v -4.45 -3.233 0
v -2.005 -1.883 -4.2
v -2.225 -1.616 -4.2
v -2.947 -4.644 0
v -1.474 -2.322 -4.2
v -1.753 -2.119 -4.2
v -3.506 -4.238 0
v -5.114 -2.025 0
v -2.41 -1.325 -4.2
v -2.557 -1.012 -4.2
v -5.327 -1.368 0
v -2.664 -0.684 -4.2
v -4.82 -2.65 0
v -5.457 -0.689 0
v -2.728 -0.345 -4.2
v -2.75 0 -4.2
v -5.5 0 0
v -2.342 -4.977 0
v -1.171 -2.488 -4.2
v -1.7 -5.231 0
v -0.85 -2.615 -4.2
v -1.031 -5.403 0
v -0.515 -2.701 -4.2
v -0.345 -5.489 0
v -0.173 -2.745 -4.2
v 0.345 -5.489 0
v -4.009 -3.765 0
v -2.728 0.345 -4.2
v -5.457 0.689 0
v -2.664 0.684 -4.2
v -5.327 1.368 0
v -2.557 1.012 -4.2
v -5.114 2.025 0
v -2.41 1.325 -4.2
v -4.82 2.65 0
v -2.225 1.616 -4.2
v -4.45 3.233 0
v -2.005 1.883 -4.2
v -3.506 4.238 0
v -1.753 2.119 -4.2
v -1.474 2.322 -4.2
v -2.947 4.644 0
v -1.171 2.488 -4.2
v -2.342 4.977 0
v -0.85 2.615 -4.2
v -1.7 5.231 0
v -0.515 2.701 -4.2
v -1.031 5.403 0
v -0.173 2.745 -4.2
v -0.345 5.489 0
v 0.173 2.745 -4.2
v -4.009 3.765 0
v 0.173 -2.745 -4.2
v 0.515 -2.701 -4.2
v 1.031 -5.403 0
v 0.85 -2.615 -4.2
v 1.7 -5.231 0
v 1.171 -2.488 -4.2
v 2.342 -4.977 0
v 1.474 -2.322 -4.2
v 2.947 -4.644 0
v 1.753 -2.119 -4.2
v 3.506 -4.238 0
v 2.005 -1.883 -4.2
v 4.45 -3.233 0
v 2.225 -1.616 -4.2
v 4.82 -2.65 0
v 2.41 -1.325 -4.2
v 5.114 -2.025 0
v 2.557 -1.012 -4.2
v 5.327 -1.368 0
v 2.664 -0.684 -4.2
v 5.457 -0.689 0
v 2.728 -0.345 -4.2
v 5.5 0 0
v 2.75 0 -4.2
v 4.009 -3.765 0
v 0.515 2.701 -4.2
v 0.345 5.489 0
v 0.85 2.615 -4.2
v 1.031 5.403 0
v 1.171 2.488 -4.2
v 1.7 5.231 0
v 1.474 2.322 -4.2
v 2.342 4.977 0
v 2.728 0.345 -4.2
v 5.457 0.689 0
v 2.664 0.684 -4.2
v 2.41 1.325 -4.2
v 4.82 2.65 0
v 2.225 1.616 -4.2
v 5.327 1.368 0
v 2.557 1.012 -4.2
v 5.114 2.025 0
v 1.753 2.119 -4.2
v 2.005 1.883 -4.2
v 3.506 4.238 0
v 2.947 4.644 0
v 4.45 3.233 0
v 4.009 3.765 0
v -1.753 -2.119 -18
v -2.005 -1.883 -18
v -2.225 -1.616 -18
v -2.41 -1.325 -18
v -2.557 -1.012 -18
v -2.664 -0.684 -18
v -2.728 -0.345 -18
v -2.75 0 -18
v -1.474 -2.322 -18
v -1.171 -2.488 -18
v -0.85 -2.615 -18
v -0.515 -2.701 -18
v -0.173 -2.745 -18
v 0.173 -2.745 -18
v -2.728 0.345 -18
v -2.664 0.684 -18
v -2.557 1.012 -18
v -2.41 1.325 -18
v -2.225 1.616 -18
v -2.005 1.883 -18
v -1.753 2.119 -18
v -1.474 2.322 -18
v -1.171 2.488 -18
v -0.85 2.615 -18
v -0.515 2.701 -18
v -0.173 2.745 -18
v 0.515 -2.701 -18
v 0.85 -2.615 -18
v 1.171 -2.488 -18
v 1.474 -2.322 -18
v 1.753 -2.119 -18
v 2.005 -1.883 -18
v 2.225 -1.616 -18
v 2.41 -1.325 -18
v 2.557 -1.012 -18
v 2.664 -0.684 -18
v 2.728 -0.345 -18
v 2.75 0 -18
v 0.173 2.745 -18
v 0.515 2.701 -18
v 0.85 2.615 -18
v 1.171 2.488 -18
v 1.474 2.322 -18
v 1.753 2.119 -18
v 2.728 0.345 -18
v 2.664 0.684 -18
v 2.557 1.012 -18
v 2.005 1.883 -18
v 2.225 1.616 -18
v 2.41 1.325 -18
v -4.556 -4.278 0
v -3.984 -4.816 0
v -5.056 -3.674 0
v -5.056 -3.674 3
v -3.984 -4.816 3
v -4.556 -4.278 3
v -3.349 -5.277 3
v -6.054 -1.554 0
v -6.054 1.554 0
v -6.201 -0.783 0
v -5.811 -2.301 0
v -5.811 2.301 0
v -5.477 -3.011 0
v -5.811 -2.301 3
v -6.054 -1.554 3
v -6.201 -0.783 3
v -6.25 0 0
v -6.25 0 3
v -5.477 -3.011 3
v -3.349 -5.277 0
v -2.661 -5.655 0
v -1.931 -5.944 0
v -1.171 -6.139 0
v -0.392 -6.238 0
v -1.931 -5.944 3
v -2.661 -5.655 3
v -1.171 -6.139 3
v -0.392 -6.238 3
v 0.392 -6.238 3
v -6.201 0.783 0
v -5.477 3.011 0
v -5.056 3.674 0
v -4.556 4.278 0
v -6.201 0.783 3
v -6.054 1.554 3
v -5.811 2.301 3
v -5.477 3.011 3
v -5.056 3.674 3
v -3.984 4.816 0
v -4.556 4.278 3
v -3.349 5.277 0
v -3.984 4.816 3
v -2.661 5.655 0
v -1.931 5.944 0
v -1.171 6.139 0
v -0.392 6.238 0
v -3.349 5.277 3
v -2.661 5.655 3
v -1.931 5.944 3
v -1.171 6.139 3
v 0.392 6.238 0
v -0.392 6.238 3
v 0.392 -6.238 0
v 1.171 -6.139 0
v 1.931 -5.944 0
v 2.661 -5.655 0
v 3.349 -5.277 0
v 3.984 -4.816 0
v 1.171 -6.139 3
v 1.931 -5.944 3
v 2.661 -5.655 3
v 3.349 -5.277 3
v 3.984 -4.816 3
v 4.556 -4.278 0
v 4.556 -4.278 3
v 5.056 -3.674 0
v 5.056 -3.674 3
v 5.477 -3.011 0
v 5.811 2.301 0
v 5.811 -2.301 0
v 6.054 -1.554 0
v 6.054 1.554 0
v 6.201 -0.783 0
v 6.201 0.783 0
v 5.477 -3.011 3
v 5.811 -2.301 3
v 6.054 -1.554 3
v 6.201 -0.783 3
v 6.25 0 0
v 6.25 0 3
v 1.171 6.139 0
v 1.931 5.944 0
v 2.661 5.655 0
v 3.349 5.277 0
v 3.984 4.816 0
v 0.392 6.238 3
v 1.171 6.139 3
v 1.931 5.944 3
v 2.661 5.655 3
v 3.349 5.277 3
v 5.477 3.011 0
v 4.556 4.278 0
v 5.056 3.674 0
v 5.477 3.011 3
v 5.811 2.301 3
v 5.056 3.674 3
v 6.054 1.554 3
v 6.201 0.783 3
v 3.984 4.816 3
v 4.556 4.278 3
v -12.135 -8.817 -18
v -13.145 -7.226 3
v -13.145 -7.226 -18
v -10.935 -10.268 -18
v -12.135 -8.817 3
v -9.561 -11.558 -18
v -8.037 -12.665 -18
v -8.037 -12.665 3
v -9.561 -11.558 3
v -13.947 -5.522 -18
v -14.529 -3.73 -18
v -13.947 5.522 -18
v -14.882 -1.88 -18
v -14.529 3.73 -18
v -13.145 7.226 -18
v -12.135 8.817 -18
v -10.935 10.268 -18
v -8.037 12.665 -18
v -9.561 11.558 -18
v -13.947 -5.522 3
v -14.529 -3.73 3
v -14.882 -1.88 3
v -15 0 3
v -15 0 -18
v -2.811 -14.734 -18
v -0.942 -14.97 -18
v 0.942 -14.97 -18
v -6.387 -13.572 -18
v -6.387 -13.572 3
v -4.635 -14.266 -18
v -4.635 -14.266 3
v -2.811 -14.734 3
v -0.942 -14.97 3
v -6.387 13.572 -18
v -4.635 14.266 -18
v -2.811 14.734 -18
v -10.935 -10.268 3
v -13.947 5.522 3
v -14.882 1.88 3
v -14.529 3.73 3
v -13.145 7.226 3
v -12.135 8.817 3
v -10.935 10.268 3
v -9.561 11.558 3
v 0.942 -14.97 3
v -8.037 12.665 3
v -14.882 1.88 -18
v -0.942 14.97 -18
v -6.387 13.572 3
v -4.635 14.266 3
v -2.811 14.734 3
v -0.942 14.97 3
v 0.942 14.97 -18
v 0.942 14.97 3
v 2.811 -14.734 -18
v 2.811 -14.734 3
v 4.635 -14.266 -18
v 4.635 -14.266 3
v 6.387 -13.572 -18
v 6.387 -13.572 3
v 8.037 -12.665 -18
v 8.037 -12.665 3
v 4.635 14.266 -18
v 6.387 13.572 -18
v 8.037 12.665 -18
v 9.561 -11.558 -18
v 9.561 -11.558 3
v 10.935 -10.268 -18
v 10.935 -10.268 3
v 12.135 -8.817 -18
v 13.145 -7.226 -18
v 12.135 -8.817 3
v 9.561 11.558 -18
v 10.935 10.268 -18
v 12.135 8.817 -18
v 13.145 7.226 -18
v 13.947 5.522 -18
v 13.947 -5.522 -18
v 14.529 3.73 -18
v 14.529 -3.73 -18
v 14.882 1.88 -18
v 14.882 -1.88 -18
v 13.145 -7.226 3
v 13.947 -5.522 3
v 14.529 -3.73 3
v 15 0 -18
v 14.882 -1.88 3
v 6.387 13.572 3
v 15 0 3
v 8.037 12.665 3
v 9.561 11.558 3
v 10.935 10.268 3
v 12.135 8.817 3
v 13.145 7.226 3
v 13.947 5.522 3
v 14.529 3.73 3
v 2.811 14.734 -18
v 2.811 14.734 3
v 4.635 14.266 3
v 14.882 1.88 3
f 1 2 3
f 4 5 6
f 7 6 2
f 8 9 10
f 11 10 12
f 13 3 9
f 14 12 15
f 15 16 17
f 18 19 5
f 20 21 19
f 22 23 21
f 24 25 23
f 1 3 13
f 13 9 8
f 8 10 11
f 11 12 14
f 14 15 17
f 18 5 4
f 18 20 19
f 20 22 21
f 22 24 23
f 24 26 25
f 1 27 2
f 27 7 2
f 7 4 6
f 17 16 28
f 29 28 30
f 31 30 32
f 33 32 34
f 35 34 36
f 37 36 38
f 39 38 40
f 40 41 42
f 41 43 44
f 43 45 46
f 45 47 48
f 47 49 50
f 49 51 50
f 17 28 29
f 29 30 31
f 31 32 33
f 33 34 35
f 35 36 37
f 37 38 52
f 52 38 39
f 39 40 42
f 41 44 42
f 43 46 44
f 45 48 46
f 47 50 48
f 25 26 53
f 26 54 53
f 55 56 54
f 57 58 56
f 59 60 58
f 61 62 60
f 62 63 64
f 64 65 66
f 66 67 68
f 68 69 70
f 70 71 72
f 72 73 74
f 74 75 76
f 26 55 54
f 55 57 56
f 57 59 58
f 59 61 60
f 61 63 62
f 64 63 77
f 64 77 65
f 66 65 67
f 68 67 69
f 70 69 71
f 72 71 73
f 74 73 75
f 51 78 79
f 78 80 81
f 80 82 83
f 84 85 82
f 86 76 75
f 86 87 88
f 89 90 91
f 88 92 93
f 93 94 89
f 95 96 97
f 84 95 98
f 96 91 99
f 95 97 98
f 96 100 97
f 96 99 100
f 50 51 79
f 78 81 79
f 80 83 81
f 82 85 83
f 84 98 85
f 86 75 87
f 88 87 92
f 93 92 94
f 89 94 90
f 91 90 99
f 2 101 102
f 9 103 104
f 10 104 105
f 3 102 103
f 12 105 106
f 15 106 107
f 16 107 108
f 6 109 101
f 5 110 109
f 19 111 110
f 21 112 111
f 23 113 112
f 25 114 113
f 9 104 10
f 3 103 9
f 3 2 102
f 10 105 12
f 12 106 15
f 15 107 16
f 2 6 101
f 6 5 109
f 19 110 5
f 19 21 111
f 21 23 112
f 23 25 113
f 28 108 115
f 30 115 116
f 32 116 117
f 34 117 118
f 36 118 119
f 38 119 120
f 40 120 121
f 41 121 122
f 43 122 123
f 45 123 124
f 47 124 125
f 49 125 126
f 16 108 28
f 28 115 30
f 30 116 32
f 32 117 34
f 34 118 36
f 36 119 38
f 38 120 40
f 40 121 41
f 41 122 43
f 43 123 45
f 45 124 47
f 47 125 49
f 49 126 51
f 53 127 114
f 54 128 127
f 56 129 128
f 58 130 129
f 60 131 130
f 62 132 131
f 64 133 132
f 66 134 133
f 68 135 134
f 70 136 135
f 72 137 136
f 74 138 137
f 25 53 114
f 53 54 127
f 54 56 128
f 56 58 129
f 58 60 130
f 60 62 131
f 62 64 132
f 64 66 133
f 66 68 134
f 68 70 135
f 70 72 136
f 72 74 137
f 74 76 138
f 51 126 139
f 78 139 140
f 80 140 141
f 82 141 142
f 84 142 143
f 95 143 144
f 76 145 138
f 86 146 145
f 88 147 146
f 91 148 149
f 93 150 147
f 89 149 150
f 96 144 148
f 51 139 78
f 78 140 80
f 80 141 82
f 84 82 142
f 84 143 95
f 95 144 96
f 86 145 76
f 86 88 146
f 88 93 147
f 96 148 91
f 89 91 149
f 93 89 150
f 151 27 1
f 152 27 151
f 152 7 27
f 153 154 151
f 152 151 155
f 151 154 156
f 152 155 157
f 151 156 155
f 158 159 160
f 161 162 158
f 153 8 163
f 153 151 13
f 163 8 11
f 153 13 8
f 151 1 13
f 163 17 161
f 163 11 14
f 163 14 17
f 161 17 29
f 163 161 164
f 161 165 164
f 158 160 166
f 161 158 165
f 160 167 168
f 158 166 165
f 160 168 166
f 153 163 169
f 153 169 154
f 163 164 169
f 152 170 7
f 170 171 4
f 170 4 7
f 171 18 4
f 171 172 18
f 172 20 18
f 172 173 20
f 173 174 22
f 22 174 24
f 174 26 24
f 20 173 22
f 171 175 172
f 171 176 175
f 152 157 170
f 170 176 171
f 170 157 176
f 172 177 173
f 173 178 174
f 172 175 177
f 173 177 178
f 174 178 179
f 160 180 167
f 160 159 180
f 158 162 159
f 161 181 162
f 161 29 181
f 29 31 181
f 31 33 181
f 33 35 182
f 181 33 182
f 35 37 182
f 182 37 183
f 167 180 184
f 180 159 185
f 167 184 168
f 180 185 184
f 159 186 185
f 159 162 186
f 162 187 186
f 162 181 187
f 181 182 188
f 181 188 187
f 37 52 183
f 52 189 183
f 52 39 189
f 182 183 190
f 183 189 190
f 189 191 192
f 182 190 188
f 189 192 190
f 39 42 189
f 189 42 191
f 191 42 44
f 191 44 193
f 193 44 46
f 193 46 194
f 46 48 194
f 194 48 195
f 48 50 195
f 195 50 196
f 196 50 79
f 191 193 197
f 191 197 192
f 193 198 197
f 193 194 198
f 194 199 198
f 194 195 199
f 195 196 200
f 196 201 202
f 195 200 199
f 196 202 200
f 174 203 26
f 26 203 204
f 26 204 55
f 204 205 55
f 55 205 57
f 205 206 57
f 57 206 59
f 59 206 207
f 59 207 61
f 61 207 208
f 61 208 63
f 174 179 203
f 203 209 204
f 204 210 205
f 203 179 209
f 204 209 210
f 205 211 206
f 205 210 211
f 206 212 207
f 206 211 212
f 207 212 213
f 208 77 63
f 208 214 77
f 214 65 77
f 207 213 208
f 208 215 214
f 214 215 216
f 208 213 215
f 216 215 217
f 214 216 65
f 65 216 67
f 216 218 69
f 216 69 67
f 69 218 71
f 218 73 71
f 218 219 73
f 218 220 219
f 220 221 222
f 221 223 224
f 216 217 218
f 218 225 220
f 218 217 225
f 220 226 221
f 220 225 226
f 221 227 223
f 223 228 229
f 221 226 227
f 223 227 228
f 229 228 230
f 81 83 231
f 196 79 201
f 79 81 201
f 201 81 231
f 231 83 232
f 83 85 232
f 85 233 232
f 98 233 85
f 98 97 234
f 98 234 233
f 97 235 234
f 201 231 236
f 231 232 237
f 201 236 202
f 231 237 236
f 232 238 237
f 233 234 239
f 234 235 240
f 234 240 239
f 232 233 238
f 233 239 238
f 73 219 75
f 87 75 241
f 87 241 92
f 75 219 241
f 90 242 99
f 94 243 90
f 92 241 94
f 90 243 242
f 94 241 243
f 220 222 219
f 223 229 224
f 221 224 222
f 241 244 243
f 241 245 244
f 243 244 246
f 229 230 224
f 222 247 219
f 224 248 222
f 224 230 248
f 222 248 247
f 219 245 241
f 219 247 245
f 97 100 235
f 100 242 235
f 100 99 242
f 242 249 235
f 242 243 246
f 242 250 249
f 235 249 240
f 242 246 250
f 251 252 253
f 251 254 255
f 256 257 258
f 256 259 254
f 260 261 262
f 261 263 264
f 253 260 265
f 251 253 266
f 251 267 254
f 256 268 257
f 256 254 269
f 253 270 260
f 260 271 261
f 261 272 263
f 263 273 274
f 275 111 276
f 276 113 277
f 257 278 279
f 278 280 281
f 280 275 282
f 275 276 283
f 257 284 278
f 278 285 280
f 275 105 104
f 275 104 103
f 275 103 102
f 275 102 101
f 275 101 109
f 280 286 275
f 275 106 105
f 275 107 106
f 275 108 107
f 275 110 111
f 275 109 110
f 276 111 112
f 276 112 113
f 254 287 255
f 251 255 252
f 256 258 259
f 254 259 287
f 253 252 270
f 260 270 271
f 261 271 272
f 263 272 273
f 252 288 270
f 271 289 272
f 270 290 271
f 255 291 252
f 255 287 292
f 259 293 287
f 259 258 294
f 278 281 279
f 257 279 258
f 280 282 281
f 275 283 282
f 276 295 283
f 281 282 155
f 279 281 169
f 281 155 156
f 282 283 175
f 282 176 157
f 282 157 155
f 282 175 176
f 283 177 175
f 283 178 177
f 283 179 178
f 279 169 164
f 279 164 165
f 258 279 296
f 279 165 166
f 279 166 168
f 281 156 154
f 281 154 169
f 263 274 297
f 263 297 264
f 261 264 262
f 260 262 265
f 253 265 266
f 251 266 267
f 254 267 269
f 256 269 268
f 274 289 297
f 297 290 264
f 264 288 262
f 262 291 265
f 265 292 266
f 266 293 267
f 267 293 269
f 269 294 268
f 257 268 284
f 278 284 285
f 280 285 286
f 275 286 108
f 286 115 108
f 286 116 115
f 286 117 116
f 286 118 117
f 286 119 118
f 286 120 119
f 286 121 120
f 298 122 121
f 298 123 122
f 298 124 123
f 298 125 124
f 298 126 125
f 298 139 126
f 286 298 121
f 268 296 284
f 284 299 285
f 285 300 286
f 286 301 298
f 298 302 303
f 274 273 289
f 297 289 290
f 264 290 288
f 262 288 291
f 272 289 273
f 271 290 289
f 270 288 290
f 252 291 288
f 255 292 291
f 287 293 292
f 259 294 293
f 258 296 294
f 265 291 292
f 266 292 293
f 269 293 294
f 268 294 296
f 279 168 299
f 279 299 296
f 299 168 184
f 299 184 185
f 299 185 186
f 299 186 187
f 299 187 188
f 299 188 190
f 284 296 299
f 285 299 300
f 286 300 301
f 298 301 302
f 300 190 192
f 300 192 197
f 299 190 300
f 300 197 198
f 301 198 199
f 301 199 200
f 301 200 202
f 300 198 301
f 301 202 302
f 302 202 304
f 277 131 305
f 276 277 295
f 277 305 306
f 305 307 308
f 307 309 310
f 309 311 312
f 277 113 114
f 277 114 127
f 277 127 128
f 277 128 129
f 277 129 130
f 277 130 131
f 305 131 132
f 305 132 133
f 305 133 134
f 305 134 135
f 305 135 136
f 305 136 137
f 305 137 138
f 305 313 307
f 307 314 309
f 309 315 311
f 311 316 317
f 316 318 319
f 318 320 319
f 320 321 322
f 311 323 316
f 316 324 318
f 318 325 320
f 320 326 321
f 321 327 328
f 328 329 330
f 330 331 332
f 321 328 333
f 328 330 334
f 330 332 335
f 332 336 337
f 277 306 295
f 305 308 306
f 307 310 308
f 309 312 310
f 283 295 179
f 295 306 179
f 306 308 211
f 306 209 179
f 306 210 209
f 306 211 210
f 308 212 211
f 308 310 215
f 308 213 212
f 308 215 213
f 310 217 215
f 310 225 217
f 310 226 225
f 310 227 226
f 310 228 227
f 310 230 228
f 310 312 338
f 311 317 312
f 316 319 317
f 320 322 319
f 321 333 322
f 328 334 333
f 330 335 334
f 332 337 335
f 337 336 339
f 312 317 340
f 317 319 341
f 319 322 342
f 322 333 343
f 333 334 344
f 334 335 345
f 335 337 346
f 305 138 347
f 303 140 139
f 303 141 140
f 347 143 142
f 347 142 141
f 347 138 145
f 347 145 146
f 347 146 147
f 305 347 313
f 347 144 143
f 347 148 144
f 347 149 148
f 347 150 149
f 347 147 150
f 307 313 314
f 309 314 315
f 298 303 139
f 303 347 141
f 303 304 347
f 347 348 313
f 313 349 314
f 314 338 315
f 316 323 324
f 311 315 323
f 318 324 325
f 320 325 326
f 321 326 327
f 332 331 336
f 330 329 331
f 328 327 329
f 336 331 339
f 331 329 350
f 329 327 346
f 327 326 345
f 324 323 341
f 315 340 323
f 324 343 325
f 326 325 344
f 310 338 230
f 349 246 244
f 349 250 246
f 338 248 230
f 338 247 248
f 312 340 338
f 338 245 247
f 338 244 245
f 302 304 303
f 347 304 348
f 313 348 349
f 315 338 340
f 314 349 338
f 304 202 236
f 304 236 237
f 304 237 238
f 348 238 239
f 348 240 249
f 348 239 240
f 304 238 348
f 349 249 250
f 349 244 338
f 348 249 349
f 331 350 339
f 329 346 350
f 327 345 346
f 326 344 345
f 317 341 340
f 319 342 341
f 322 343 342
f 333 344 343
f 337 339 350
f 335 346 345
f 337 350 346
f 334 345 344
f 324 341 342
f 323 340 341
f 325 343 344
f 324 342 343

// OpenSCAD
$fn = 50;

difference() {
	union() {
		translate(v = [0, 0, -18.0]) {
			cylinder(h = 21, r = 15.0);
		}
	}
	union() {
		translate(v = [0, 0, 0]) {
			rotate(a = [0, 0, 0]) {
				difference() {
					union() {
						translate(v = [0, 0, -21.0]) {
							cylinder(h = 21, r = 2.25);
						}
						translate(v = [0, 0, -4.2]) {
							cylinder(h = 4.2, r1 = 2.75, r2 = 5.5);
						}
						translate(v = [0, 0, -21.0]) {
							cylinder(h = 21, r = 2.75);
						}
						translate(v = [0, 0, -21.0]) {
							cylinder(h = 21, r = 2.25);
						}
					}
					union();
				}
			}
		}
		#cylinder(h = 3, r = 6.25);
	}
}
